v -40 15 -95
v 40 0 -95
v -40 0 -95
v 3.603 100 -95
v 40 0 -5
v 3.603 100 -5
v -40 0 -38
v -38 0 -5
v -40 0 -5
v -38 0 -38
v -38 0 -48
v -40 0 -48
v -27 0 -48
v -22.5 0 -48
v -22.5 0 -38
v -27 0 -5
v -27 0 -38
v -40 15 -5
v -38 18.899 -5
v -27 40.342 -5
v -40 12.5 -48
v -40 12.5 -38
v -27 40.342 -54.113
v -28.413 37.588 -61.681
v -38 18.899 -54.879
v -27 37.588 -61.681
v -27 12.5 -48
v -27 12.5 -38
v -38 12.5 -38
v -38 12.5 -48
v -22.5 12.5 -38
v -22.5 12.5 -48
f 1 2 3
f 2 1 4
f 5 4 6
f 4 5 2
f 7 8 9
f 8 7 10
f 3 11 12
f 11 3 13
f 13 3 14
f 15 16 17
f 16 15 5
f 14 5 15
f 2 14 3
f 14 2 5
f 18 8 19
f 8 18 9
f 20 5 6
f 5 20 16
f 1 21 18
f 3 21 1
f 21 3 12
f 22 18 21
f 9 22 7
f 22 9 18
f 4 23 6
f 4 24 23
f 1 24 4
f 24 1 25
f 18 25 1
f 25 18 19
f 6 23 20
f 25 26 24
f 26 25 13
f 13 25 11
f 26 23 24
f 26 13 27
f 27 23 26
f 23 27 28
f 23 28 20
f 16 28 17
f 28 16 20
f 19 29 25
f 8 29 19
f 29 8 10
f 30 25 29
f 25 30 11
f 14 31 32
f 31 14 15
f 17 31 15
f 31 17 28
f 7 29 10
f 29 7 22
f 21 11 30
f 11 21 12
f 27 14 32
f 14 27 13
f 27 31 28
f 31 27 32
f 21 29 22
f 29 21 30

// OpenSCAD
// -- Parámetros Clave --
// Dimensiones estimadas para Google Pixel 10 con funda delgada
phone_width = 80;       // Ancho del teléfono en mm
phone_thickness = 11;   // Grosor del teléfono en mm

// Propiedades del soporte
stand_width = phone_width + 10;  // Ancho total, 5mm de margen por lado
wall_thickness = 2.0;            // Regla 3: Grosor mínimo de pared
base_depth = 80;                 // Profundidad de la base para estabilidad
back_height = 100;               // Altura del respaldo
lip_height = 15;                 // Altura del labio frontal para sujetar el móvil
view_angle = 70;                 // Ángulo de inclinación (grados desde la horizontal)

// Hueco para conector USB-C
usb_cutout_width = 25;
usb_cutout_height = 10;

// -- Calidad del Modelo --
$fn = 24; // Regla 4: Resolución para curvas

// -- Inicio del Modelo --
// El 'translate' exterior centra el objeto final en el origen (Regla 2)
translate([ -base_depth / 2, 0, -back_height / 2 ]) {

    // Usamos difference() para sustraer volúmenes de un sólido base
    difference() {

        // 1. CUERPO SÓLIDO PRINCIPAL //
        // Se crea un perfil 2D en el plano X-Z y se extruye en Y para formar el cuerpo
        linear_extrude(height = stand_width, center = true) {
            polygon([
                [0, 0],                                                   // Punto inferior-frontal
                [base_depth, 0],                                          // Punto inferior-trasero
                [base_depth - back_height / tan(view_angle), back_height],  // Punto superior-trasero
                [0, lip_height]                                           // Punto superior del labio frontal
            ]);
        }

        // 2. HUECO PARA EL SMARTPHONE //
        // Un cubo largo, rotado al ángulo correcto, que se sustrae del cuerpo principal
        // Se mueve 'wall_thickness' hacia adentro para crear las paredes
        translate([wall_thickness, 0, wall_thickness]) {
            rotate([-(90 - view_angle), 0, 0]) {
                // Usamos un cubo más grande de lo necesario para asegurar un corte limpio
                // Se centra en sus propios ejes para facilitar la rotación y posicionamiento
                translate([phone_thickness / 2, 0, back_height])
                    cube([phone_thickness, phone_width, back_height * 2], center = true);
            }
        }

        // 3. HUECO PARA EL CABLE USB-C //
        // Un cubo que corta la parte inferior del labio frontal
        // Se posiciona al frente y abajo, centrado en el ancho (eje Y)
        translate([0, 0, wall_thickness + (usb_cutout_height / 2)]) {
             // El cubo es más profundo (eje X) de lo necesario para asegurar el corte a través del labio inclinado
            cube([35, usb_cutout_width, usb_cutout_height], center = true);
        }
    }
}
